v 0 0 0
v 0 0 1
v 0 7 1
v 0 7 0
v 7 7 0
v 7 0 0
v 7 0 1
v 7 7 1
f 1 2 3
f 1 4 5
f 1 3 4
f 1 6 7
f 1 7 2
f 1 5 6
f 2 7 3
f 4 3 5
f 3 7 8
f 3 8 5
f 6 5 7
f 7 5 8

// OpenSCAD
/* Warning, this is a very basic generator with a lot of approximation 
input data : [TQFP, CPA, 7x7x1.0mm, 32, , A, C04-01178A]
generated by com.zoubworld.electronics.cad.model3d.Basic
Date : Sun Feb 15 10:50:49 CET 2026
*/

//body
color("black")
translate([0,0,0])
cube([7.0,7.0,1.0], center=false);
